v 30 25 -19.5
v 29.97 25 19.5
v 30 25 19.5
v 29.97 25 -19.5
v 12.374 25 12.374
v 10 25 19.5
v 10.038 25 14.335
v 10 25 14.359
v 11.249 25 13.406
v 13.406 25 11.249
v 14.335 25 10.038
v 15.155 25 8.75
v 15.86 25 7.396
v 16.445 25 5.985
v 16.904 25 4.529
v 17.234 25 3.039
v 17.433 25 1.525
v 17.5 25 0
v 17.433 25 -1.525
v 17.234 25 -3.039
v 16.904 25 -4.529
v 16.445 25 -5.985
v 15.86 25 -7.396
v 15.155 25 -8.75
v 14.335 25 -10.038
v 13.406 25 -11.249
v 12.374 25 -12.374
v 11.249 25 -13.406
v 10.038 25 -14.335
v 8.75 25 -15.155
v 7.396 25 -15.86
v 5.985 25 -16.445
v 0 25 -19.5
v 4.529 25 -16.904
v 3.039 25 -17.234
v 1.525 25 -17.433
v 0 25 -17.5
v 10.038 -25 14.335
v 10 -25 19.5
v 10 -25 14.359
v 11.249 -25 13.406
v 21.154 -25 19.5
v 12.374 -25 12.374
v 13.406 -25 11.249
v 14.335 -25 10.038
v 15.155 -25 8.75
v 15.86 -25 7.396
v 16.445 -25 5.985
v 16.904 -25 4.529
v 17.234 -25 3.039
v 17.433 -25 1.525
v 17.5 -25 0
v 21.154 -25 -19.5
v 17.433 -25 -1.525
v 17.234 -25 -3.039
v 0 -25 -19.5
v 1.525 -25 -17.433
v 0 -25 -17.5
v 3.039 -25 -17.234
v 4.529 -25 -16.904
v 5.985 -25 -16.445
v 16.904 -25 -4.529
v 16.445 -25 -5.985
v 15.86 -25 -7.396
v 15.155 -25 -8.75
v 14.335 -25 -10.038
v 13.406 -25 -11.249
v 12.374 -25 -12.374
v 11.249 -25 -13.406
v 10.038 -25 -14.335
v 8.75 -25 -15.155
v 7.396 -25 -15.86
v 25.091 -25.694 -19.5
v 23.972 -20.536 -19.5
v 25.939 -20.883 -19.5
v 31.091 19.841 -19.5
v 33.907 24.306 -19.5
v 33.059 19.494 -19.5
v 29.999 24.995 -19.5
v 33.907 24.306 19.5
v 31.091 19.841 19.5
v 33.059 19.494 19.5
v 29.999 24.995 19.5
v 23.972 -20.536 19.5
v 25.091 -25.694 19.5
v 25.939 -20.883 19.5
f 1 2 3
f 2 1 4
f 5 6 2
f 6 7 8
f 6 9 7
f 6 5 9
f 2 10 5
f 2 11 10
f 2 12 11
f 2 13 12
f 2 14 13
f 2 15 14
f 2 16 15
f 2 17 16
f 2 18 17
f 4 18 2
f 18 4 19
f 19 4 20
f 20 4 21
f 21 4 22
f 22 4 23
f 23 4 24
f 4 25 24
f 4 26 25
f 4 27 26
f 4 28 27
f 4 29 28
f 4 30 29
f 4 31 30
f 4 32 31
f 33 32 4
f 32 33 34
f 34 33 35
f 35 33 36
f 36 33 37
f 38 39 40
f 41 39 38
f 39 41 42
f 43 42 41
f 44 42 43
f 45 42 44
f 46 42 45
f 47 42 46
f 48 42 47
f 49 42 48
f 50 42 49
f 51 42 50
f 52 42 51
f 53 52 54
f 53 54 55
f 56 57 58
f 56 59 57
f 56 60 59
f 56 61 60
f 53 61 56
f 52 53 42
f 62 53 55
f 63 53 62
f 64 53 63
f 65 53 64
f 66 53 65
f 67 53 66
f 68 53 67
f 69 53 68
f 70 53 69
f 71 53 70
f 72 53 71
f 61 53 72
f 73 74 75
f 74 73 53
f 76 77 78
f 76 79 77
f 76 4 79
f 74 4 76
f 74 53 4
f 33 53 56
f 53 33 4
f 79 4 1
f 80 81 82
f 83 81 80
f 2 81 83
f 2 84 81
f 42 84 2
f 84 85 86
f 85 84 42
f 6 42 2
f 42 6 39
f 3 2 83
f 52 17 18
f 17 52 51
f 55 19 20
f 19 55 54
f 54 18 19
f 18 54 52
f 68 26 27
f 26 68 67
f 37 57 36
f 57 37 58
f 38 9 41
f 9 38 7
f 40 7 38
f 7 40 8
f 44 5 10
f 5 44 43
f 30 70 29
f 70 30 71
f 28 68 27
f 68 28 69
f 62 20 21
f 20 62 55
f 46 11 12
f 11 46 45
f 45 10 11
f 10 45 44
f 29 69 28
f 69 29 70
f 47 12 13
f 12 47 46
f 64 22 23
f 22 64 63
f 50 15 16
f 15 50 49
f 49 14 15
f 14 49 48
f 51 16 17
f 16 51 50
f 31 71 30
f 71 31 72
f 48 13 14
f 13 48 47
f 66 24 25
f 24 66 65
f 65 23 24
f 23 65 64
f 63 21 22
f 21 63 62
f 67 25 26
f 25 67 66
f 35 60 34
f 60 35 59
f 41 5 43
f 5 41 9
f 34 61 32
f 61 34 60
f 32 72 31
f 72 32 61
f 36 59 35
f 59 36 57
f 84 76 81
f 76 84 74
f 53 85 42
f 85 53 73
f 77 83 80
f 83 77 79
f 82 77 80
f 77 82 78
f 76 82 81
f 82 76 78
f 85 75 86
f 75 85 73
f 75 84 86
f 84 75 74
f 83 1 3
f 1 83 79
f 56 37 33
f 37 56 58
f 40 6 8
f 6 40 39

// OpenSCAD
breite = 50;
innenRadius = 17.5;
aussenRadius = 19.5;
vorwaerts = 30;
winkel = 10;
wandDicke = 2;
traegerBreite = 41;
gelaenderOffset=10;
//lochRadius = 10;
//
$fa = 5;
$fs = 1;
haelfteVonBreite = 0.5 * breite;
breiteMitPuffer = 1.2 * breite;
haelfteVonBreiteMitPuffer = 0.5 * breiteMitPuffer;
zweimalAussenRadius = 2 * aussenRadius;
leerBreite = breite - 2 * wandDicke;
haelfteVonLeerBreite = 0.5 * leerBreite;
leerHoehe = 2 * aussenRadius - 2 * wandDicke;
haelfteVonLeerHoehe = 0.5 * leerHoehe;
gross = 4 * breite;
haelfteVonGross = 0.5 * gross;
abschlussBreite = breite / cos(winkel);
haelfteVonAbschlussBreite = 0.5 * abschlussBreite;
zweimalWandDicke = 2 * wandDicke;
viermalWandDicke = 4 * wandDicke;
leistenBreite = 0.5 *(abschlussBreite - traegerBreite);
//
module lamelle(vorwaerts = 20, breite = 10, dicke = 0.3) {
    translate([0, -0.5 * breite, 0])
        cube([vorwaerts, breite, dicke]);
}


module lamellenSchar(vorwaerts = 20, breite = 10, dicke = 0.3, anzahlSeitlich = 3, abstand = 2) {
    lamelle(vorwaerts = vorwaerts, breite = breite, dicke = dicke);
    for (i = [1:1:anzahlSeitlich]) {
        translate([0, 0, i * abstand])
            lamelle(vorwaerts = vorwaerts, breite = breite, dicke = dicke);
        translate([0, 0, -i * abstand])
            lamelle(vorwaerts = vorwaerts, breite = breite, dicke = dicke);
    }
}


rotate([180, 0, 0]) {
difference() {
    difference() {
        union() {
            // Konkave Wand zum Geländer
            rotate([90, 0, 0])
                cylinder(h=breite, r=aussenRadius, center=true);
            difference() {
                // Vorwaertsquader
                translate([0, -haelfteVonBreite, -aussenRadius])
                    cube([vorwaerts, breite, zweimalAussenRadius]);
//                // Vorwaertsquader soll innen leer sein
//                translate([0, -haelfteVonLeerBreite, -haelfteVonLeerHoehe])
//                    cube([vorwaerts, leerBreite, leerHoehe]);
            }
//            // Rohr um Bohrloch
//            rotate([0, 90, 0])
//                cylinder(h=vorwaerts, r=lochRadius+wandDicke);
//            // Hohlraum mit Dreieckslamellen füllen/
//            rotate([15, 0, 0]) {
//                lamellenSchar(vorwaerts = vorwaerts, breite = 1.2 * breite, anzahlSeitlich = 13);
//                rotate([120, 0, 0])
//                    lamellenSchar(vorwaerts = vorwaerts, breite = 1.5 * breite, anzahlSeitlich = 13);
//                rotate([240, 0, 0])
//                    lamellenSchar(vorwaerts = vorwaerts, breite = 1.3 * breite, anzahlSeitlich = 13);
//            }
        }
        // Zylinder ausschneiden fuer Gelaender
        rotate([90, 0, 0])
            cylinder(h=breiteMitPuffer, r=innenRadius, center=true);
    }
    union() {
        // Vorwaertquader schraeg abschneiden
        translate([vorwaerts, -haelfteVonBreite, -haelfteVonGross])
            rotate([0, 0, winkel])
                cube([gross, gross, gross]);
//        // Bohrung auf Gelaenderseite
//        translate([0, 0, 0])
//            rotate([0, 90, 0])
//                cylinder(h=vorwaerts, r=lochRadius);
        // Hohlzylinder auf Geländerseite aufschneiden
        translate([-breite, -haelfteVonBreiteMitPuffer, -haelfteVonBreiteMitPuffer])
            cube([breite, breiteMitPuffer, breiteMitPuffer]);
        // Ueberhang abschneiden
        translate([-breite + gelaenderOffset, -haelfteVonBreiteMitPuffer, -breiteMitPuffer])
            cube([breite, breiteMitPuffer, breiteMitPuffer]);
        // Alles mit y>haelfteVonBreite abschneiden
        translate([-0.05 * vorwaerts, haelfteVonBreite, -haelfteVonGross])
            cube([1.1 * vorwaerts, breite, gross]);
        // Alles mit y<-haelfteVonBreite abschneiden
        translate([-0.05 * vorwaerts, -gross-haelfteVonBreite, -haelfteVonGross])
            cube([1.1 * vorwaerts, gross, gross]);
        // Alles mit z>aussenRadius abschneiden
        translate([-0.05 * vorwaerts, -haelfteVonGross, aussenRadius])
            cube([1.1 * vorwaerts, gross, gross]);
        // Alles mit z<-aussenRadius abschneiden
        translate([-0.05 * vorwaerts, -haelfteVonGross, -3 * aussenRadius])
            cube([1.1 * vorwaerts, gross, zweimalAussenRadius]);
    }
}

// Abschlussplatte
translate([0.999 * vorwaerts, -haelfteVonBreite, -aussenRadius])
    rotate([0, 0, winkel])
        difference() {
            union() {
                // Eigentliche Abschlussplatte
                cube([wandDicke, abschlussBreite, zweimalAussenRadius]);
                // Leiste auf einer Seite
                translate([0.999 * wandDicke, 0, 0])
                    cube([wandDicke, leistenBreite, zweimalAussenRadius]);
                translate([0.999 * wandDicke, abschlussBreite - leistenBreite, 0])
                    cube([wandDicke, leistenBreite, zweimalAussenRadius]);

            }
//            // Loch durch Abschlussplatte
//            translate([-zweimalWandDicke, haelfteVonAbschlussBreite, aussenRadius])
//                rotate([0, 90, 0])
//                    cylinder(h=viermalWandDicke, r=lochRadius);
        }

}
